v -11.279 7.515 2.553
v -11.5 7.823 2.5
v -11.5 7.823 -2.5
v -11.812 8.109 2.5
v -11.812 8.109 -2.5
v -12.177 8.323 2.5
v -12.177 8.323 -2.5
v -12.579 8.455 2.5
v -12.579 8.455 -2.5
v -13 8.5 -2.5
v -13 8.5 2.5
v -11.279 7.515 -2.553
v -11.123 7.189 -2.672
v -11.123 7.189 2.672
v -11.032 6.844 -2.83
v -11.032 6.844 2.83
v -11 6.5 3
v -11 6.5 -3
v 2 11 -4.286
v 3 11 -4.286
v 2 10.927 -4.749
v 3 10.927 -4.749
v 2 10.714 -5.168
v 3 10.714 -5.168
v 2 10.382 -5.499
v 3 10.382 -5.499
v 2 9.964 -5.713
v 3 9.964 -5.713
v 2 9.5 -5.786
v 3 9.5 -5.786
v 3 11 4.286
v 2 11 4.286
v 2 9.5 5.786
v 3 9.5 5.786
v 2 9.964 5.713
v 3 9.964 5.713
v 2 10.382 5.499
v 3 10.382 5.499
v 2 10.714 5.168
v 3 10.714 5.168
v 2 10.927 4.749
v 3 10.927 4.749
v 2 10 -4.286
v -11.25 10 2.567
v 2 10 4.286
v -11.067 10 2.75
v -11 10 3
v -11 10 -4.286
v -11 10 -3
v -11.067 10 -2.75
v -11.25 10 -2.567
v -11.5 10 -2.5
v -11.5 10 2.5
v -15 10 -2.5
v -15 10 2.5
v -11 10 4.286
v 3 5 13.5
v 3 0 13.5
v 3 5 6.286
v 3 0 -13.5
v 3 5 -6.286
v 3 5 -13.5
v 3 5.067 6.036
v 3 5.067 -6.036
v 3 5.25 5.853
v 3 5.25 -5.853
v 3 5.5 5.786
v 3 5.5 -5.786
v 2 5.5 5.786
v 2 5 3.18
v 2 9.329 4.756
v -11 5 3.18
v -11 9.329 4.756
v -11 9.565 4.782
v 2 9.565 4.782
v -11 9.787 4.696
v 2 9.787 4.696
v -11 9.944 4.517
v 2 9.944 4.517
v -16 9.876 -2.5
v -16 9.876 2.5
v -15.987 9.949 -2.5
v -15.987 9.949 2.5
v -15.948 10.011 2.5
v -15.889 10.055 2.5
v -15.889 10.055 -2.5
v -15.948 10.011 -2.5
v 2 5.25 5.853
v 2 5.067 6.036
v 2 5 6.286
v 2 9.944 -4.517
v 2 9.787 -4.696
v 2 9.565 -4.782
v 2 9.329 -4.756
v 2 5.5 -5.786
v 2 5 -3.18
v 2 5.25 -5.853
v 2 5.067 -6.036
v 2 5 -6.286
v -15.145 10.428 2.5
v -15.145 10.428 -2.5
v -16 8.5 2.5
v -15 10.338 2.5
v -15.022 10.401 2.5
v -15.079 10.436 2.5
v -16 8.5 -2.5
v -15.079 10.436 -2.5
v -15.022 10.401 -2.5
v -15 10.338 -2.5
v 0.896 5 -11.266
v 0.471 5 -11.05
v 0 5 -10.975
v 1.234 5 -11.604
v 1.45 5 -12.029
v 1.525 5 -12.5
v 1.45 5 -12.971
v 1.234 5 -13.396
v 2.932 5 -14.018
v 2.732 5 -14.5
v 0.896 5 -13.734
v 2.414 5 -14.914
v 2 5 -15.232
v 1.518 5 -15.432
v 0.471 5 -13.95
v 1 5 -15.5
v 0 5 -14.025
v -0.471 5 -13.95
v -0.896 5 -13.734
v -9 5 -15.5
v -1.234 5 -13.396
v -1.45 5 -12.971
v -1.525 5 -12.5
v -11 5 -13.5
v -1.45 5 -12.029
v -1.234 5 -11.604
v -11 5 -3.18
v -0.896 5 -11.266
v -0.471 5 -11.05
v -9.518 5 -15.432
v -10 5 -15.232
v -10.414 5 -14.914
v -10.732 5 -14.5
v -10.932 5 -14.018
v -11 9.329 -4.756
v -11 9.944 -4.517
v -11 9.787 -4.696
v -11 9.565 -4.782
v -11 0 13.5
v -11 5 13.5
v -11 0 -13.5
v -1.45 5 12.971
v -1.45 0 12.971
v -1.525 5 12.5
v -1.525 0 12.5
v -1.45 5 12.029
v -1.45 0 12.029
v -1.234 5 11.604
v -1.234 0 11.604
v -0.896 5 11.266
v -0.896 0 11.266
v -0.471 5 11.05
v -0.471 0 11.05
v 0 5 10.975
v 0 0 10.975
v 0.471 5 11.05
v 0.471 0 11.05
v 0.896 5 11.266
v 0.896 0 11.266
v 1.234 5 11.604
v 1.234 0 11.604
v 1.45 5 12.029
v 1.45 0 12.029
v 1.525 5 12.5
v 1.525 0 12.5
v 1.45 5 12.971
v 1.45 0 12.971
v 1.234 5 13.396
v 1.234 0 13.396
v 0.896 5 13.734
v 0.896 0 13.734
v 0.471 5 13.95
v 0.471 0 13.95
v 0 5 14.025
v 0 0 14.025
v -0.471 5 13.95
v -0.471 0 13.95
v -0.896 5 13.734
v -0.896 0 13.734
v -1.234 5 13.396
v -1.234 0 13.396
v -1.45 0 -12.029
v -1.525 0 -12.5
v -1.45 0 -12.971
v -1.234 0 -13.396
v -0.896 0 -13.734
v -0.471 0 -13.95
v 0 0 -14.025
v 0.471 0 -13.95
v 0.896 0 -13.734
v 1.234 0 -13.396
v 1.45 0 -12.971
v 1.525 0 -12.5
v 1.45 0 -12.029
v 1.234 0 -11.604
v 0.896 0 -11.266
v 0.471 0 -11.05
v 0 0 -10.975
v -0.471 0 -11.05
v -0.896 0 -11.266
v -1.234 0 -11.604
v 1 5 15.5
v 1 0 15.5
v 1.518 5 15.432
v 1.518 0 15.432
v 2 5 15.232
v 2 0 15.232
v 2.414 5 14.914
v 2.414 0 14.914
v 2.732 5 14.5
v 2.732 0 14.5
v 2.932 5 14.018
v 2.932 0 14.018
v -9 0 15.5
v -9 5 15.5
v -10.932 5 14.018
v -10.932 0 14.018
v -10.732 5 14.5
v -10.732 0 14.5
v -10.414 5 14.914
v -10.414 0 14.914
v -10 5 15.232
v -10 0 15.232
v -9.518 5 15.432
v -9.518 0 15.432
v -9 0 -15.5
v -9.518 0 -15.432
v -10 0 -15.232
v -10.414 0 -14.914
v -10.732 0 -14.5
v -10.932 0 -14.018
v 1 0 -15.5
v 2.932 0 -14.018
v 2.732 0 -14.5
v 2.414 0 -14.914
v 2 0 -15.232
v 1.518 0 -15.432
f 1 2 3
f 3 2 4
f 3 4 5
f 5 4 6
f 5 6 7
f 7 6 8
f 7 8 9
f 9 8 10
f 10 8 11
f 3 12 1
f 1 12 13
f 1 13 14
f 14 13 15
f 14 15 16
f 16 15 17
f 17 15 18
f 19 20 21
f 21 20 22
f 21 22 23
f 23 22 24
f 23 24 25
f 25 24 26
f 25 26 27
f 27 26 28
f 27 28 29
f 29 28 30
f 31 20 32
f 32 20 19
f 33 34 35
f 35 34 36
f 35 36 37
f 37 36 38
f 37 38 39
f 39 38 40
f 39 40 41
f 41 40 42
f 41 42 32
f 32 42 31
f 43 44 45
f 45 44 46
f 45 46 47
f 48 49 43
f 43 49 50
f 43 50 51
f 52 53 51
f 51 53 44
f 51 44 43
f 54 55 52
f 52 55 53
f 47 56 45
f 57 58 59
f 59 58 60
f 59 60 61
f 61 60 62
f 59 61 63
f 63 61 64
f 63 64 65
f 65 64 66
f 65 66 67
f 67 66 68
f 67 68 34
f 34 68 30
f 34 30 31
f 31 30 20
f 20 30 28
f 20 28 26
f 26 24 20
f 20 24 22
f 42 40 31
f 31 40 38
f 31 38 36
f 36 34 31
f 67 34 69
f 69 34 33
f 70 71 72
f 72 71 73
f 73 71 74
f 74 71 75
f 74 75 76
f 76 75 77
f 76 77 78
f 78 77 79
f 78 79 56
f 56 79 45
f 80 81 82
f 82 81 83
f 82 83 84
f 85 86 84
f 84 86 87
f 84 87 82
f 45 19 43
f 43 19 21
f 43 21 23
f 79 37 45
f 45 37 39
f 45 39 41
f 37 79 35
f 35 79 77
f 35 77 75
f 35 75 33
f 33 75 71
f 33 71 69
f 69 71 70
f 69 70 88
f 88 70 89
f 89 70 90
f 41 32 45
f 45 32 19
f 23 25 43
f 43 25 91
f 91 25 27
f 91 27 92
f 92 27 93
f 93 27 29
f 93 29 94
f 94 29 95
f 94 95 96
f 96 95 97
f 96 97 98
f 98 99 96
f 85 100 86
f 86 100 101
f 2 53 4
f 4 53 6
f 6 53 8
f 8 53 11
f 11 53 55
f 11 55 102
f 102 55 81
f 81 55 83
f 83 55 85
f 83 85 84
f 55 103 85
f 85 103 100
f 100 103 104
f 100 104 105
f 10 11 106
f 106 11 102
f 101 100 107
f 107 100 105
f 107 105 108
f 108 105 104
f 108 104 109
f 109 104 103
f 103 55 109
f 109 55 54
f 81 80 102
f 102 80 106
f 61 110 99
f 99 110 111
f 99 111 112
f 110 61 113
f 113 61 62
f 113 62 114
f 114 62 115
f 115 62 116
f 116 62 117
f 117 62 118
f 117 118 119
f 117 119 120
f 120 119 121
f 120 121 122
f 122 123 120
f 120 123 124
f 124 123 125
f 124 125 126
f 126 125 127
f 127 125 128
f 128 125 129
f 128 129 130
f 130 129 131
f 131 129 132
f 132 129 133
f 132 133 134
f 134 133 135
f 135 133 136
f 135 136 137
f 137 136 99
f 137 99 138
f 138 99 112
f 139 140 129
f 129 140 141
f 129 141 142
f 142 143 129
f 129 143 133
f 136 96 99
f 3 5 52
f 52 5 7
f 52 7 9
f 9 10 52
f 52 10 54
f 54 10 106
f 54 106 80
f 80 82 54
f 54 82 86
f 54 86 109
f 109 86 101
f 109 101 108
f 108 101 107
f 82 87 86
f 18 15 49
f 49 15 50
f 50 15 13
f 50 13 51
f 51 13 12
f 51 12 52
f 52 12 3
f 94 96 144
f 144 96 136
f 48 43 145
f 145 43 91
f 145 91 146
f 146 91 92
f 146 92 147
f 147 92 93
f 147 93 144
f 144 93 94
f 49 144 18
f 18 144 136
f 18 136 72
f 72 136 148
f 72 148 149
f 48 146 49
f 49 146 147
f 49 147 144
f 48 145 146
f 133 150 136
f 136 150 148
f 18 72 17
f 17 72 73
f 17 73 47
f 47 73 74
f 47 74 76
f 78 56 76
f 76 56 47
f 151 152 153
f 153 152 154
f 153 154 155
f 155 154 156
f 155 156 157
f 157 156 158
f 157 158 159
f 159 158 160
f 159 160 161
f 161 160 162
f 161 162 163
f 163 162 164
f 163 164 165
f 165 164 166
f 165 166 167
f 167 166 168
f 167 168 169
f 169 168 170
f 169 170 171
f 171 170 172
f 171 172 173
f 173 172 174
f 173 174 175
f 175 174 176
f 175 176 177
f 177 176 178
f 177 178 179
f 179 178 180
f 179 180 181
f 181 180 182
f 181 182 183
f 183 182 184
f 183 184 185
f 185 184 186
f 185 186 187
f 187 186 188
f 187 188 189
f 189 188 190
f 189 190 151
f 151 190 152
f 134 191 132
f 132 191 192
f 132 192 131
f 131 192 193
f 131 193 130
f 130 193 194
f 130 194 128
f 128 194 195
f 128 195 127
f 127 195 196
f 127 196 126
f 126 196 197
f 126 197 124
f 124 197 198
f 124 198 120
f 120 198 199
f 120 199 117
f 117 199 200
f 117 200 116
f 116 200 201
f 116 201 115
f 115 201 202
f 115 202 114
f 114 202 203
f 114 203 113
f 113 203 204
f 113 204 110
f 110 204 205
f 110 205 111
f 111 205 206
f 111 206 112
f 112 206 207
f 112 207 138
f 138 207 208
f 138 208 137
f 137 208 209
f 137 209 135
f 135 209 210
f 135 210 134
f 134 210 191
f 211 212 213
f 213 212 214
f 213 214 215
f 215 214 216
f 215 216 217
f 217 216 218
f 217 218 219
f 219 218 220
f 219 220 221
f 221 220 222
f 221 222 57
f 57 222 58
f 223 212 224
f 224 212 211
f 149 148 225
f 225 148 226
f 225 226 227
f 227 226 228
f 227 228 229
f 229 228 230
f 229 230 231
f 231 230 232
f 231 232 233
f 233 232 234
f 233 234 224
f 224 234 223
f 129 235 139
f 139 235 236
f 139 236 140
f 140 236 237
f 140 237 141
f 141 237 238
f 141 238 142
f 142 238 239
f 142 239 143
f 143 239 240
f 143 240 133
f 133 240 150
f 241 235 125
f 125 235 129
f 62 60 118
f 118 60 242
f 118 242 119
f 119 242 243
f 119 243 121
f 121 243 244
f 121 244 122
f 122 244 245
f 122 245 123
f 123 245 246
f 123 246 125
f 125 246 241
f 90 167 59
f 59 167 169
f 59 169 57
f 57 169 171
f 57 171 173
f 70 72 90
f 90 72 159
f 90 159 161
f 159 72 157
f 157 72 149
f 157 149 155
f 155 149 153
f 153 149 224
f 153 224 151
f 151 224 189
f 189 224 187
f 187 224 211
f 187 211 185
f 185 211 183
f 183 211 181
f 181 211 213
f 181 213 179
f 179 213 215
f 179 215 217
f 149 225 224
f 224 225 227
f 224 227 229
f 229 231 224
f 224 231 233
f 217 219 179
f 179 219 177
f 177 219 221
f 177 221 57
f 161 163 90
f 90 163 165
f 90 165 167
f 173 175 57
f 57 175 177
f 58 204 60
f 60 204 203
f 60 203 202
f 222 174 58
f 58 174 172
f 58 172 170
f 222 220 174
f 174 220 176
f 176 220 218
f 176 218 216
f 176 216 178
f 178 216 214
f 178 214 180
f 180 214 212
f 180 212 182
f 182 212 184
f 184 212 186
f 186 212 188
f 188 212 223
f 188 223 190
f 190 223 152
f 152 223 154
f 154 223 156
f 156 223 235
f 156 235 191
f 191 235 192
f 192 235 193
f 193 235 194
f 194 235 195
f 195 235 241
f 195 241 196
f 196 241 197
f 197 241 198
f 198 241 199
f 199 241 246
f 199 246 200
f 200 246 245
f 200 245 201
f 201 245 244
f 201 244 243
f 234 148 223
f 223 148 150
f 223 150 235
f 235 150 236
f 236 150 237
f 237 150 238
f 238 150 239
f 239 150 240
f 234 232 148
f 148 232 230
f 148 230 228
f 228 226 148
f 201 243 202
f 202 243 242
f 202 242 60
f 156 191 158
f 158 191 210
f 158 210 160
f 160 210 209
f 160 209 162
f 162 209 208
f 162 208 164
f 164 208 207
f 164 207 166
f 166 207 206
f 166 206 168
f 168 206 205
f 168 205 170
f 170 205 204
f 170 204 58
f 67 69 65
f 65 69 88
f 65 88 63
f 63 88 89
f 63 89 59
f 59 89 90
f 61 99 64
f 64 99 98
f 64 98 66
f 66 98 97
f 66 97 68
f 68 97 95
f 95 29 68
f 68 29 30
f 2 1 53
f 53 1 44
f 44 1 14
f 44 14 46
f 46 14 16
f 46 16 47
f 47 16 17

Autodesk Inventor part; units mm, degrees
ref_plane "YZ Plane" through (0, 0, 0) normal (1, 0, 0) x (0, 1, 0)
ref_plane "XZ Plane" through (0, 0, 0) normal (0, 1, 0) x (-1, 0, 0)
ref_plane "XY Plane" through (0, 0, 0) normal (0, 0, 1) x (1, 0, 0)
sketch "Sketch1" plane through (0, 0, 0) normal (0, 1, 0) x (-1, 0, 0)
  line L0 (-1, -15.5) -> (1, -15.5)
  line L1 (1, 15.5) -> (-1, 15.5)
  line L2 (-3, 13.5) -> (-3, -13.5)
  line L3 (-3, -15.5) -> (3, 15.5) construction
  line L4 (3, -15.5) -> (-3, 15.5) construction
  circle A0 centre (0, 12.5) radius 1.525
  circle A1 centre (0, -12.5) radius 1.525
  arc A2 (-1, 15.5) -> (-3, 13.5) centre (-1, 13.5) ccw
  arc A3 (-3, -13.5) -> (-1, -15.5) centre (-1, -13.5) ccw
  line L5 (1, -15.5) -> (9, -15.5)
  line L6 (11, -13.5) -> (11, 13.5)
  line L7 (9, 15.5) -> (1, 15.5)
  arc A4 (9, -15.5) -> (11, -13.5) centre (9, -13.5) ccw
  arc A5 (11, 13.5) -> (9, 15.5) centre (9, 13.5) ccw
  point P0 (0, 0)
  point P1 (11, -15.5)
  dimension "d0" = 25
  dimension "d1" = 3.05
  dimension "d2" = 3.05
  dimension "d3" = 3
  dimension "d4" = 3
  dimension "d7" = 31
  dimension "d19" = 10
  dimension "d20" = 2
extrude "Extrusion1" add sketch "Sketch1" along normal blind 5
sketch "Sketch2" plane through (3, 0, 13.5) normal (1, 0, 0) x (0, 0, -1)
  line L0 (0, 5) -> (27, 5) projected
  line L1 (27, 5) -> (0, 5) projected
  line L2 (13.5, 5) -> (13.5, 10)
  line L3 (13.5, 10) -> (17.7859, 10)
  line L4 (18.2558, 9.329) -> (16.6801, 5)
  line L5 (13.5, 10) -> (9.2141, 10)
  line L6 (8.7442, 9.329) -> (10.3199, 5)
  line L7 (10.3199, 5) -> (16.6801, 5)
  arc A0 (9.2141, 10) -> (8.7442, 9.329) centre (9.2141, 9.5) ccw
  arc A1 (18.2558, 9.329) -> (17.7859, 10) centre (17.7859, 9.5) ccw
  point P0 (13.5, 0)
  point P1 (18.5, 10)
  point P2 (8.5, 10)
  dimension "d11" = 5
  dimension "d12" = 5
  dimension "d13" = 70
  dimension "d14" = 5
  dimension "d15" = 70
  dimension "d16" = 0.5
extrude "Extrusion2" add sketch "Sketch2" against normal up to surface (14 mm away)
sketch "Sketch3" plane through (3, 10, 4.2859) normal (0, 1, 0) x (1, 0, 0)
  line L0 (-14, 8.5719) -> (-14, 0) projected
  line L1 (-14, 1.7859) -> (-19, 1.7859)
  line L2 (-19, 1.7859) -> (-19, 6.7859)
  line L3 (-19, 6.7859) -> (-14, 6.7859)
  line L4 (-14, 6.7859) -> (-14, 1.7859)
  line L5 (0, 8.5719) -> (-14, 8.5719) projected
  point P0 (-3, 4.2859)
  point P1 (-14, 4.2859)
  point P2 (-14, 6.7859)
  dimension "d21" = 5
  dimension "d22" = 5
extrude "Extrusion3" add sketch "Sketch3" against normal blind 1.5
sketch "Sketch4" plane through (-11, 10, -2.5) normal (0, 0, -1) x (-1, 0, 0)
  line L0 (5, 0) -> (0, 0) projected
  line L1 (5, 0) -> (4, 0)
  line L2 (4, 0) -> (4, 0.3382)
  line L3 (4.1447, 0.4276) -> (5, 0)
  arc A0 (4.1447, 0.4276) -> (4, 0.3382) centre (4.1, 0.3382) ccw
  point P0 (-11, -10)
  point P1 (4, 0.5)
  dimension "d26" = 1
  dimension "d27" = 0.5
  dimension "d28" = 0.1
extrude "Extrusion4" add sketch "Sketch4" against normal up to surface (5 mm away)
fillet "Fillet1" radius 2 1 edges at (-11, 8.5, 0)
fillet "Fillet2" radius 0.2 1 edges at (-16, 10, 0)
sketch "Sketch5" plane through (3, 0, 13.5) normal (1, 0, 0) x (0, 0, -1)
  line L0 (0, 0) -> (27, 0) projected
  line L1 (27, 0) -> (27, 5) projected
  line L2 (16.6801, 5) -> (27, 5) projected
  line L3 (16.6801, 5) -> (18.2558, 9.329) projected
  arc A0 (18.2558, 9.329) -> (17.7859, 10) centre (17.7859, 9.5) ccw projected
  line L4 (17.7859, 10) -> (9.2141, 10) projected
  arc A1 (9.2141, 10) -> (8.7442, 9.329) centre (9.2141, 9.5) ccw projected
  line L5 (8.7442, 9.329) -> (10.3199, 5) projected
  line L6 (0, 5) -> (10.3199, 5) projected
  line L7 (0, 0) -> (0, 5) projected
  line L8 (9.2141, 11) -> (17.7859, 11)
  arc A2 (19.2859, 9.5) -> (17.7859, 11) centre (17.7859, 9.5) ccw
  arc A3 (9.2141, 11) -> (7.7141, 9.5) centre (9.2141, 9.5) ccw
  line L9 (7.7141, 9.5) -> (7.7141, 5)
  line L10 (19.2859, 9.5) -> (19.2859, 5)
  line L11 (7.7141, 5) -> (19.2859, 5)
  point P0 (13.5, 0)
  dimension "d33" = 1
extrude "Extrusion5" add sketch "Sketch5" against normal blind 1 contours L9 A3 L8 A2 L10 L2 L3 A0 L4 A1 L5 L6
fillet "Fillet3" radius 0.5 1 edges at (2.5, 5, 5.7859)
fillet "Fillet4" radius 0.5 3 edges at (2.5, 5, -5.7859) (-11, 8.25, 2.5) (-11, 8.25, -2.5)
equation "\"d2\" = d1"
equation "\"d4\" = d3"
properties part number "male1"
